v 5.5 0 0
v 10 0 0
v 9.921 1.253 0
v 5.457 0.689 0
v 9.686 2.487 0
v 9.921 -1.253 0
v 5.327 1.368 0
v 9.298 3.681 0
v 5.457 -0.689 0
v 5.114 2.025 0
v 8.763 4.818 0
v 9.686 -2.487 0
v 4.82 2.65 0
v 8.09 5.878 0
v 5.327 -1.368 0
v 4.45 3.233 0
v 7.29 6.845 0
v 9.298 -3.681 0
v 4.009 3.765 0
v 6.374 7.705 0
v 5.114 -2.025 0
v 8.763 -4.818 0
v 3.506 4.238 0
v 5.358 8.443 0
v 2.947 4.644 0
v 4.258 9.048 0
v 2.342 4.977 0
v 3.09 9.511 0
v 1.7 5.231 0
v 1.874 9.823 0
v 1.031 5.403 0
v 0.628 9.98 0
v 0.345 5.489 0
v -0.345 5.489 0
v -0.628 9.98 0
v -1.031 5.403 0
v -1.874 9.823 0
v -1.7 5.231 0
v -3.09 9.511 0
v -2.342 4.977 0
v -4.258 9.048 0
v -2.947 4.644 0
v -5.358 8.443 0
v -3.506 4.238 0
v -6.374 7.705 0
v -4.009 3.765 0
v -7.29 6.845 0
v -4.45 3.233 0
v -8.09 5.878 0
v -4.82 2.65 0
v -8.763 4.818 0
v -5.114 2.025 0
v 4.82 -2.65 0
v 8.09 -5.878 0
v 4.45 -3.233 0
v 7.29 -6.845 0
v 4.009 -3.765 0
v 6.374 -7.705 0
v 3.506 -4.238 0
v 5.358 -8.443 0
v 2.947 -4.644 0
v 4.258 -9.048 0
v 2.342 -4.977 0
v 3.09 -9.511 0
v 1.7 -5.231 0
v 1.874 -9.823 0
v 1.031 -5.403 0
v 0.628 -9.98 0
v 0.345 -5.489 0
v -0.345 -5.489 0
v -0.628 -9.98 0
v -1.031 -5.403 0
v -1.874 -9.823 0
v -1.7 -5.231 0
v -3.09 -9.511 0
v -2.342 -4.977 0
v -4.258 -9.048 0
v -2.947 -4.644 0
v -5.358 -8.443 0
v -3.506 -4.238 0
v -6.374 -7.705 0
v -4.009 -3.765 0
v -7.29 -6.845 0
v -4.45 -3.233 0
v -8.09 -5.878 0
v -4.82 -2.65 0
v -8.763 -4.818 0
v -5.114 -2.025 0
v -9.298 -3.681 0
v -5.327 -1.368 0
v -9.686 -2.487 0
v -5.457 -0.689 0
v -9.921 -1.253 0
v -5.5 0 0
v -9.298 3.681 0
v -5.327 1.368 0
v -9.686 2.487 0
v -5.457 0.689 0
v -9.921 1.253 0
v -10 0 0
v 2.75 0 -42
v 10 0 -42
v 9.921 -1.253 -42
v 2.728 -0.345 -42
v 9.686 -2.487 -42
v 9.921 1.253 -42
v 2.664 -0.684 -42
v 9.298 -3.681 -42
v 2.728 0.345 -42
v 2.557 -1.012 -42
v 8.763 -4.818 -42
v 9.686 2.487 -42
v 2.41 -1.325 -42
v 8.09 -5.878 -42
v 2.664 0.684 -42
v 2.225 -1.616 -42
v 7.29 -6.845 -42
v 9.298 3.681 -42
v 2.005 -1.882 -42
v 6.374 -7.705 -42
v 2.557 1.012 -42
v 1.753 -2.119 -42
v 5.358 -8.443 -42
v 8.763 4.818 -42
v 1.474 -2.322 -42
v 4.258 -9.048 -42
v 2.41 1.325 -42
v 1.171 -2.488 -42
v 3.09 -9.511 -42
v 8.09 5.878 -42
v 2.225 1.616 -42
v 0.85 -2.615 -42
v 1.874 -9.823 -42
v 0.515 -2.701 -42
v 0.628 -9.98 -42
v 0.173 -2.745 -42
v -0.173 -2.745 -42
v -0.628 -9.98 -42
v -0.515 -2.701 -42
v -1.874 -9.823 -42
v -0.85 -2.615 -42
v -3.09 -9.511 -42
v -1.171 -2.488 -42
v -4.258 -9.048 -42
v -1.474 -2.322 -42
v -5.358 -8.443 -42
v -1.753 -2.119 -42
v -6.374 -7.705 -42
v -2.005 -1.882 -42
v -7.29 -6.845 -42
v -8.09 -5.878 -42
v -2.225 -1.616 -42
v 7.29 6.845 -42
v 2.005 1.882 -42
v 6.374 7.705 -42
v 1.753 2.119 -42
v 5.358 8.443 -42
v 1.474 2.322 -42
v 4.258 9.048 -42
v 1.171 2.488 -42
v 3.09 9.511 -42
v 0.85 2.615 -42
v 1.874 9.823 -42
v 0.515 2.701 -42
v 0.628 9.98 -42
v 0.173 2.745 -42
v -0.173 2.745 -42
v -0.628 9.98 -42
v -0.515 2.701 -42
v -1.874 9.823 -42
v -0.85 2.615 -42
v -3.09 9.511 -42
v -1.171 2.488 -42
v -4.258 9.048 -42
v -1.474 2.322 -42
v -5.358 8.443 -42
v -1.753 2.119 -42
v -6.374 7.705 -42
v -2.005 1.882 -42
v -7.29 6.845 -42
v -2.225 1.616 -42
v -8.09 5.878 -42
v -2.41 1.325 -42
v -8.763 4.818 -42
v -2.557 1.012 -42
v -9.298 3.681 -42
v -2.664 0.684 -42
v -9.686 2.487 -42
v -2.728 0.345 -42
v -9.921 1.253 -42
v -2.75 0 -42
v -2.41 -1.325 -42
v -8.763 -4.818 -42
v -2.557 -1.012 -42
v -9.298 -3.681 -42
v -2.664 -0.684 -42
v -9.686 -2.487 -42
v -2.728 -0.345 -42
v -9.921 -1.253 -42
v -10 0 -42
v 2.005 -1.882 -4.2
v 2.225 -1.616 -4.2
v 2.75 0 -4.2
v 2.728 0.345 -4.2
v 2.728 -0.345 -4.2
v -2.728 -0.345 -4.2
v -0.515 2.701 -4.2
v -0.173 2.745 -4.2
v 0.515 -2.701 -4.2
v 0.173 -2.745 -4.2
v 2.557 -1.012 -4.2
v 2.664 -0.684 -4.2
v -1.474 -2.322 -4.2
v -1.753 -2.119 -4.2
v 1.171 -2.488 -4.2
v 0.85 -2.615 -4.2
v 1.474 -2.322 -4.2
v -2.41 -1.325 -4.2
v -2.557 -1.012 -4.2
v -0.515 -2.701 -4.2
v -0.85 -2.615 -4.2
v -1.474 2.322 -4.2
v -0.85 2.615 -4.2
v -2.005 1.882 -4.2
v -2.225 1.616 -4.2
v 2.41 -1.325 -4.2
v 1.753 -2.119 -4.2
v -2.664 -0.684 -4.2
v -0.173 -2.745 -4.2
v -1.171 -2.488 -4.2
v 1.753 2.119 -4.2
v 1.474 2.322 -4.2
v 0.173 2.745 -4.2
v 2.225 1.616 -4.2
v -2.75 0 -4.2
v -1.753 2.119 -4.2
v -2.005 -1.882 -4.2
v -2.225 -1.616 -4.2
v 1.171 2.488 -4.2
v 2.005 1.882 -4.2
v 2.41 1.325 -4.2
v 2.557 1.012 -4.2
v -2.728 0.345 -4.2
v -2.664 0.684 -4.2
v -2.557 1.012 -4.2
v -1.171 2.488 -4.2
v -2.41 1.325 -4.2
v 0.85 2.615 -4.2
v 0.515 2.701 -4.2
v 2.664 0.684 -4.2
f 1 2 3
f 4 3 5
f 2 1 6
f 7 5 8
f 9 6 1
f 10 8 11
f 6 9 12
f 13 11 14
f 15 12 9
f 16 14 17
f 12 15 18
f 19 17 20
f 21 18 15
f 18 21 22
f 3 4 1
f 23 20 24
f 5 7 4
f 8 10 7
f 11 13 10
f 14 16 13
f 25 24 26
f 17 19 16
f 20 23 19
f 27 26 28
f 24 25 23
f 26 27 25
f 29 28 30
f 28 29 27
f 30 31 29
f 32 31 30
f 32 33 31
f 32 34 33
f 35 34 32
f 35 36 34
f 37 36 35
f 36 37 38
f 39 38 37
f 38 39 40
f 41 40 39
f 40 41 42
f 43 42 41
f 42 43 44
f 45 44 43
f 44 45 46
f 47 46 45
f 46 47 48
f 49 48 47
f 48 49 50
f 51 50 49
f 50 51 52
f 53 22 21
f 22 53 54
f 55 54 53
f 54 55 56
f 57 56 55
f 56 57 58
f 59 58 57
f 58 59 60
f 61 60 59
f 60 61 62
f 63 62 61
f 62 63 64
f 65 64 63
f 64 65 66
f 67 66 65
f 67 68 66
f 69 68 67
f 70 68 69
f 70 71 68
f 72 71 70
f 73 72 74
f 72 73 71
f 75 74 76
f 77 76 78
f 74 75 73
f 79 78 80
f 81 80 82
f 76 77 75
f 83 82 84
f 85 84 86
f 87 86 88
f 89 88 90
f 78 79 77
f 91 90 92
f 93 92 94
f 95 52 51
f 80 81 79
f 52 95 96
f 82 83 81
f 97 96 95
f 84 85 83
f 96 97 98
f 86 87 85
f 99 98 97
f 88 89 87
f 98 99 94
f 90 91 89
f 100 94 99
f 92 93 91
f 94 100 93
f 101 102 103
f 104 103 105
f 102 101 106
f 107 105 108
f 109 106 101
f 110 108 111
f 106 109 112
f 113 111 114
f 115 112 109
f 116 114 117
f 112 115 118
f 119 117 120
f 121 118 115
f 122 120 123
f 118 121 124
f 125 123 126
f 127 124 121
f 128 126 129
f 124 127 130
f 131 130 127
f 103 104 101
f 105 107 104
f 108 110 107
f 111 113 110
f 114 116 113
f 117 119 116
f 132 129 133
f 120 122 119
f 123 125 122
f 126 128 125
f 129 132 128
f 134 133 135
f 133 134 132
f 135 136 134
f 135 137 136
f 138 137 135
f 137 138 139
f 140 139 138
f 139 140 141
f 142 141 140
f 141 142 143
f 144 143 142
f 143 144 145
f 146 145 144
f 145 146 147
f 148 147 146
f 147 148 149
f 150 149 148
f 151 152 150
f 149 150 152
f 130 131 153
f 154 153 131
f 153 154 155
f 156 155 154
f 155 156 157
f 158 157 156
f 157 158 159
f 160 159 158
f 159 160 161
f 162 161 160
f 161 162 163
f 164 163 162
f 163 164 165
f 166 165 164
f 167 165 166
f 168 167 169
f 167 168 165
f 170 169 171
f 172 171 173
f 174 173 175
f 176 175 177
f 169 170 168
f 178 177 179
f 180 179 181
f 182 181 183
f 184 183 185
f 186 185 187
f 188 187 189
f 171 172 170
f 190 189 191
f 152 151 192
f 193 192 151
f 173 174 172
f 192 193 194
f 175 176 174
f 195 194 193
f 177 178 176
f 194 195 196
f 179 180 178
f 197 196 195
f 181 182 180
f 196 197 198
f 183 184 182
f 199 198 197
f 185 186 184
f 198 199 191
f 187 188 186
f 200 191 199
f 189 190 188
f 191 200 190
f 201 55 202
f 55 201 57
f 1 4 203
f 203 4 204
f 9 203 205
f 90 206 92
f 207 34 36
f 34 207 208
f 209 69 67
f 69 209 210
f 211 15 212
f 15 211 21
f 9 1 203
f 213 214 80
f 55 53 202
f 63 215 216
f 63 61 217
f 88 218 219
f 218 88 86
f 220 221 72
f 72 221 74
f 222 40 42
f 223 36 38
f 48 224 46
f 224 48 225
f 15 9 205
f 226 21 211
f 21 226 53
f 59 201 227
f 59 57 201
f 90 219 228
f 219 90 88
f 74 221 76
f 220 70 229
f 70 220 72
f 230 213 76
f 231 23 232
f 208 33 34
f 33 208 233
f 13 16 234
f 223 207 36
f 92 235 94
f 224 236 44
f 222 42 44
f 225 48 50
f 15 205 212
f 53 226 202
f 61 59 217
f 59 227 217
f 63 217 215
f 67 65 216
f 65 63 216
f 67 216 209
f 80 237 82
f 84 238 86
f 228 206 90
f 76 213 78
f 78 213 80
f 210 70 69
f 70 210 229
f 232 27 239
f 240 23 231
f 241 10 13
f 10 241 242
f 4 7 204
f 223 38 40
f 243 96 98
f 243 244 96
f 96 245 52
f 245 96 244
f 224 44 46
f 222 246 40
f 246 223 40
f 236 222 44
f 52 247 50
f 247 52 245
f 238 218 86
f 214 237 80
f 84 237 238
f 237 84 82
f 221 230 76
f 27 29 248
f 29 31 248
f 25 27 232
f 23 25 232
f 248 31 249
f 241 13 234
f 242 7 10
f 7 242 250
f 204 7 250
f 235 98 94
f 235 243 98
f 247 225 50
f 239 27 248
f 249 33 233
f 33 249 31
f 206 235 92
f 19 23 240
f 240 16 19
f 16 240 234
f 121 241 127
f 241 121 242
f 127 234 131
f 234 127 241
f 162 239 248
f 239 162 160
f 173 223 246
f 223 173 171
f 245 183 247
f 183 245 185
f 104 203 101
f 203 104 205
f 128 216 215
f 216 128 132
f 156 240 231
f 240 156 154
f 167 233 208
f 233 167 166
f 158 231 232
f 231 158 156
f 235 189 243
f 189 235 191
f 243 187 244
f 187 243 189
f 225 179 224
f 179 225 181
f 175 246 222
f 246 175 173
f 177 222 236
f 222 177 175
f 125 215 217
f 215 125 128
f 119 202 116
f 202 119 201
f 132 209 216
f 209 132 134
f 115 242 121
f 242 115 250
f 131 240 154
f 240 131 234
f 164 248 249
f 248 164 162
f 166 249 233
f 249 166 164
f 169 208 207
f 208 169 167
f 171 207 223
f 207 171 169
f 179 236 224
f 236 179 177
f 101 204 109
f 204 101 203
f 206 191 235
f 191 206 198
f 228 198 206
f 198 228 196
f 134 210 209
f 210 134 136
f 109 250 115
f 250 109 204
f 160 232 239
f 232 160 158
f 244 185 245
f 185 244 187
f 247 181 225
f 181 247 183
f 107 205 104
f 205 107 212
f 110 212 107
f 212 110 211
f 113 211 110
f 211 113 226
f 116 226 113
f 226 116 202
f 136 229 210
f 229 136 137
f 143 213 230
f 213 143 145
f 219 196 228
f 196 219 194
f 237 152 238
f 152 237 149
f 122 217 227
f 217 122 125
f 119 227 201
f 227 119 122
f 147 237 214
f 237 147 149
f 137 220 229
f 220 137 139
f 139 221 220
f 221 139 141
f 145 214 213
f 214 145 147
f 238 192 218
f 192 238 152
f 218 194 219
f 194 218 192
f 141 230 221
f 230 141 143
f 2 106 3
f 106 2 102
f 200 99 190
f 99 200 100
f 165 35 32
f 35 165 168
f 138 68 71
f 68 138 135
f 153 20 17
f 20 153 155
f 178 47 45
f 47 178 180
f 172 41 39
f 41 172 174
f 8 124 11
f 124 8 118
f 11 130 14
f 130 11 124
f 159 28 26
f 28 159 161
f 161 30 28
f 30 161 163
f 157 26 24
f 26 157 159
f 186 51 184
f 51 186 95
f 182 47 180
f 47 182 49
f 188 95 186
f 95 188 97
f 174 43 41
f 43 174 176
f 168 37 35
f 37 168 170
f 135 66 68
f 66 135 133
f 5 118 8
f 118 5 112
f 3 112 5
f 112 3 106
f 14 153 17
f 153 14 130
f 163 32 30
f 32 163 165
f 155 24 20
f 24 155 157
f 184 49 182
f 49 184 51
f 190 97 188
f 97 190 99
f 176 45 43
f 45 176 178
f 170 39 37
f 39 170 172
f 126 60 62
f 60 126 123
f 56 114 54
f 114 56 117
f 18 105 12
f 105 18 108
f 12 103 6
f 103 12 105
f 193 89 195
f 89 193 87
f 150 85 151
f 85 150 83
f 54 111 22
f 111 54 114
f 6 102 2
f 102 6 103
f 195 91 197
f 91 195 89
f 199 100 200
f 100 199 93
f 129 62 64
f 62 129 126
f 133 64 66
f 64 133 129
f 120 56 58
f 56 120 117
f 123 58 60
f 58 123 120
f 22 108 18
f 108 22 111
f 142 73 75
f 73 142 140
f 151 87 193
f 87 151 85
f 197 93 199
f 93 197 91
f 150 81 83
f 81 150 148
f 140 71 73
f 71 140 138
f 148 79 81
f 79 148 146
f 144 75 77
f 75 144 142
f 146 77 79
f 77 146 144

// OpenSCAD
$fn = 50;


difference() {
	union() {
		translate(v = [0, 0, -42.0000000000]) {
			cylinder(h = 42, r = 10.0000000000);
		}
		cylinder(h = 0, r = 20.0000000000);
	}
	union() {
		translate(v = [0, 0, 0]) {
			rotate(a = [0, 0, 0]) {
				difference() {
					union() {
						#translate(v = [0, 0, -42.0000000000]) {
							cylinder(h = 42, r = 2.2500000000);
						}
						#translate(v = [0, 0, -4.2000000000]) {
							cylinder(h = 4.2000000000, r1 = 2.7500000000, r2 = 5.5000000000);
						}
						#translate(v = [0, 0, -42.0000000000]) {
							cylinder(h = 42, r = 2.7500000000);
						}
						#translate(v = [0, 0, -42.0000000000]) {
							cylinder(h = 42, r = 2.2500000000);
						}
					}
					union();
				}
			}
		}
	}
}
